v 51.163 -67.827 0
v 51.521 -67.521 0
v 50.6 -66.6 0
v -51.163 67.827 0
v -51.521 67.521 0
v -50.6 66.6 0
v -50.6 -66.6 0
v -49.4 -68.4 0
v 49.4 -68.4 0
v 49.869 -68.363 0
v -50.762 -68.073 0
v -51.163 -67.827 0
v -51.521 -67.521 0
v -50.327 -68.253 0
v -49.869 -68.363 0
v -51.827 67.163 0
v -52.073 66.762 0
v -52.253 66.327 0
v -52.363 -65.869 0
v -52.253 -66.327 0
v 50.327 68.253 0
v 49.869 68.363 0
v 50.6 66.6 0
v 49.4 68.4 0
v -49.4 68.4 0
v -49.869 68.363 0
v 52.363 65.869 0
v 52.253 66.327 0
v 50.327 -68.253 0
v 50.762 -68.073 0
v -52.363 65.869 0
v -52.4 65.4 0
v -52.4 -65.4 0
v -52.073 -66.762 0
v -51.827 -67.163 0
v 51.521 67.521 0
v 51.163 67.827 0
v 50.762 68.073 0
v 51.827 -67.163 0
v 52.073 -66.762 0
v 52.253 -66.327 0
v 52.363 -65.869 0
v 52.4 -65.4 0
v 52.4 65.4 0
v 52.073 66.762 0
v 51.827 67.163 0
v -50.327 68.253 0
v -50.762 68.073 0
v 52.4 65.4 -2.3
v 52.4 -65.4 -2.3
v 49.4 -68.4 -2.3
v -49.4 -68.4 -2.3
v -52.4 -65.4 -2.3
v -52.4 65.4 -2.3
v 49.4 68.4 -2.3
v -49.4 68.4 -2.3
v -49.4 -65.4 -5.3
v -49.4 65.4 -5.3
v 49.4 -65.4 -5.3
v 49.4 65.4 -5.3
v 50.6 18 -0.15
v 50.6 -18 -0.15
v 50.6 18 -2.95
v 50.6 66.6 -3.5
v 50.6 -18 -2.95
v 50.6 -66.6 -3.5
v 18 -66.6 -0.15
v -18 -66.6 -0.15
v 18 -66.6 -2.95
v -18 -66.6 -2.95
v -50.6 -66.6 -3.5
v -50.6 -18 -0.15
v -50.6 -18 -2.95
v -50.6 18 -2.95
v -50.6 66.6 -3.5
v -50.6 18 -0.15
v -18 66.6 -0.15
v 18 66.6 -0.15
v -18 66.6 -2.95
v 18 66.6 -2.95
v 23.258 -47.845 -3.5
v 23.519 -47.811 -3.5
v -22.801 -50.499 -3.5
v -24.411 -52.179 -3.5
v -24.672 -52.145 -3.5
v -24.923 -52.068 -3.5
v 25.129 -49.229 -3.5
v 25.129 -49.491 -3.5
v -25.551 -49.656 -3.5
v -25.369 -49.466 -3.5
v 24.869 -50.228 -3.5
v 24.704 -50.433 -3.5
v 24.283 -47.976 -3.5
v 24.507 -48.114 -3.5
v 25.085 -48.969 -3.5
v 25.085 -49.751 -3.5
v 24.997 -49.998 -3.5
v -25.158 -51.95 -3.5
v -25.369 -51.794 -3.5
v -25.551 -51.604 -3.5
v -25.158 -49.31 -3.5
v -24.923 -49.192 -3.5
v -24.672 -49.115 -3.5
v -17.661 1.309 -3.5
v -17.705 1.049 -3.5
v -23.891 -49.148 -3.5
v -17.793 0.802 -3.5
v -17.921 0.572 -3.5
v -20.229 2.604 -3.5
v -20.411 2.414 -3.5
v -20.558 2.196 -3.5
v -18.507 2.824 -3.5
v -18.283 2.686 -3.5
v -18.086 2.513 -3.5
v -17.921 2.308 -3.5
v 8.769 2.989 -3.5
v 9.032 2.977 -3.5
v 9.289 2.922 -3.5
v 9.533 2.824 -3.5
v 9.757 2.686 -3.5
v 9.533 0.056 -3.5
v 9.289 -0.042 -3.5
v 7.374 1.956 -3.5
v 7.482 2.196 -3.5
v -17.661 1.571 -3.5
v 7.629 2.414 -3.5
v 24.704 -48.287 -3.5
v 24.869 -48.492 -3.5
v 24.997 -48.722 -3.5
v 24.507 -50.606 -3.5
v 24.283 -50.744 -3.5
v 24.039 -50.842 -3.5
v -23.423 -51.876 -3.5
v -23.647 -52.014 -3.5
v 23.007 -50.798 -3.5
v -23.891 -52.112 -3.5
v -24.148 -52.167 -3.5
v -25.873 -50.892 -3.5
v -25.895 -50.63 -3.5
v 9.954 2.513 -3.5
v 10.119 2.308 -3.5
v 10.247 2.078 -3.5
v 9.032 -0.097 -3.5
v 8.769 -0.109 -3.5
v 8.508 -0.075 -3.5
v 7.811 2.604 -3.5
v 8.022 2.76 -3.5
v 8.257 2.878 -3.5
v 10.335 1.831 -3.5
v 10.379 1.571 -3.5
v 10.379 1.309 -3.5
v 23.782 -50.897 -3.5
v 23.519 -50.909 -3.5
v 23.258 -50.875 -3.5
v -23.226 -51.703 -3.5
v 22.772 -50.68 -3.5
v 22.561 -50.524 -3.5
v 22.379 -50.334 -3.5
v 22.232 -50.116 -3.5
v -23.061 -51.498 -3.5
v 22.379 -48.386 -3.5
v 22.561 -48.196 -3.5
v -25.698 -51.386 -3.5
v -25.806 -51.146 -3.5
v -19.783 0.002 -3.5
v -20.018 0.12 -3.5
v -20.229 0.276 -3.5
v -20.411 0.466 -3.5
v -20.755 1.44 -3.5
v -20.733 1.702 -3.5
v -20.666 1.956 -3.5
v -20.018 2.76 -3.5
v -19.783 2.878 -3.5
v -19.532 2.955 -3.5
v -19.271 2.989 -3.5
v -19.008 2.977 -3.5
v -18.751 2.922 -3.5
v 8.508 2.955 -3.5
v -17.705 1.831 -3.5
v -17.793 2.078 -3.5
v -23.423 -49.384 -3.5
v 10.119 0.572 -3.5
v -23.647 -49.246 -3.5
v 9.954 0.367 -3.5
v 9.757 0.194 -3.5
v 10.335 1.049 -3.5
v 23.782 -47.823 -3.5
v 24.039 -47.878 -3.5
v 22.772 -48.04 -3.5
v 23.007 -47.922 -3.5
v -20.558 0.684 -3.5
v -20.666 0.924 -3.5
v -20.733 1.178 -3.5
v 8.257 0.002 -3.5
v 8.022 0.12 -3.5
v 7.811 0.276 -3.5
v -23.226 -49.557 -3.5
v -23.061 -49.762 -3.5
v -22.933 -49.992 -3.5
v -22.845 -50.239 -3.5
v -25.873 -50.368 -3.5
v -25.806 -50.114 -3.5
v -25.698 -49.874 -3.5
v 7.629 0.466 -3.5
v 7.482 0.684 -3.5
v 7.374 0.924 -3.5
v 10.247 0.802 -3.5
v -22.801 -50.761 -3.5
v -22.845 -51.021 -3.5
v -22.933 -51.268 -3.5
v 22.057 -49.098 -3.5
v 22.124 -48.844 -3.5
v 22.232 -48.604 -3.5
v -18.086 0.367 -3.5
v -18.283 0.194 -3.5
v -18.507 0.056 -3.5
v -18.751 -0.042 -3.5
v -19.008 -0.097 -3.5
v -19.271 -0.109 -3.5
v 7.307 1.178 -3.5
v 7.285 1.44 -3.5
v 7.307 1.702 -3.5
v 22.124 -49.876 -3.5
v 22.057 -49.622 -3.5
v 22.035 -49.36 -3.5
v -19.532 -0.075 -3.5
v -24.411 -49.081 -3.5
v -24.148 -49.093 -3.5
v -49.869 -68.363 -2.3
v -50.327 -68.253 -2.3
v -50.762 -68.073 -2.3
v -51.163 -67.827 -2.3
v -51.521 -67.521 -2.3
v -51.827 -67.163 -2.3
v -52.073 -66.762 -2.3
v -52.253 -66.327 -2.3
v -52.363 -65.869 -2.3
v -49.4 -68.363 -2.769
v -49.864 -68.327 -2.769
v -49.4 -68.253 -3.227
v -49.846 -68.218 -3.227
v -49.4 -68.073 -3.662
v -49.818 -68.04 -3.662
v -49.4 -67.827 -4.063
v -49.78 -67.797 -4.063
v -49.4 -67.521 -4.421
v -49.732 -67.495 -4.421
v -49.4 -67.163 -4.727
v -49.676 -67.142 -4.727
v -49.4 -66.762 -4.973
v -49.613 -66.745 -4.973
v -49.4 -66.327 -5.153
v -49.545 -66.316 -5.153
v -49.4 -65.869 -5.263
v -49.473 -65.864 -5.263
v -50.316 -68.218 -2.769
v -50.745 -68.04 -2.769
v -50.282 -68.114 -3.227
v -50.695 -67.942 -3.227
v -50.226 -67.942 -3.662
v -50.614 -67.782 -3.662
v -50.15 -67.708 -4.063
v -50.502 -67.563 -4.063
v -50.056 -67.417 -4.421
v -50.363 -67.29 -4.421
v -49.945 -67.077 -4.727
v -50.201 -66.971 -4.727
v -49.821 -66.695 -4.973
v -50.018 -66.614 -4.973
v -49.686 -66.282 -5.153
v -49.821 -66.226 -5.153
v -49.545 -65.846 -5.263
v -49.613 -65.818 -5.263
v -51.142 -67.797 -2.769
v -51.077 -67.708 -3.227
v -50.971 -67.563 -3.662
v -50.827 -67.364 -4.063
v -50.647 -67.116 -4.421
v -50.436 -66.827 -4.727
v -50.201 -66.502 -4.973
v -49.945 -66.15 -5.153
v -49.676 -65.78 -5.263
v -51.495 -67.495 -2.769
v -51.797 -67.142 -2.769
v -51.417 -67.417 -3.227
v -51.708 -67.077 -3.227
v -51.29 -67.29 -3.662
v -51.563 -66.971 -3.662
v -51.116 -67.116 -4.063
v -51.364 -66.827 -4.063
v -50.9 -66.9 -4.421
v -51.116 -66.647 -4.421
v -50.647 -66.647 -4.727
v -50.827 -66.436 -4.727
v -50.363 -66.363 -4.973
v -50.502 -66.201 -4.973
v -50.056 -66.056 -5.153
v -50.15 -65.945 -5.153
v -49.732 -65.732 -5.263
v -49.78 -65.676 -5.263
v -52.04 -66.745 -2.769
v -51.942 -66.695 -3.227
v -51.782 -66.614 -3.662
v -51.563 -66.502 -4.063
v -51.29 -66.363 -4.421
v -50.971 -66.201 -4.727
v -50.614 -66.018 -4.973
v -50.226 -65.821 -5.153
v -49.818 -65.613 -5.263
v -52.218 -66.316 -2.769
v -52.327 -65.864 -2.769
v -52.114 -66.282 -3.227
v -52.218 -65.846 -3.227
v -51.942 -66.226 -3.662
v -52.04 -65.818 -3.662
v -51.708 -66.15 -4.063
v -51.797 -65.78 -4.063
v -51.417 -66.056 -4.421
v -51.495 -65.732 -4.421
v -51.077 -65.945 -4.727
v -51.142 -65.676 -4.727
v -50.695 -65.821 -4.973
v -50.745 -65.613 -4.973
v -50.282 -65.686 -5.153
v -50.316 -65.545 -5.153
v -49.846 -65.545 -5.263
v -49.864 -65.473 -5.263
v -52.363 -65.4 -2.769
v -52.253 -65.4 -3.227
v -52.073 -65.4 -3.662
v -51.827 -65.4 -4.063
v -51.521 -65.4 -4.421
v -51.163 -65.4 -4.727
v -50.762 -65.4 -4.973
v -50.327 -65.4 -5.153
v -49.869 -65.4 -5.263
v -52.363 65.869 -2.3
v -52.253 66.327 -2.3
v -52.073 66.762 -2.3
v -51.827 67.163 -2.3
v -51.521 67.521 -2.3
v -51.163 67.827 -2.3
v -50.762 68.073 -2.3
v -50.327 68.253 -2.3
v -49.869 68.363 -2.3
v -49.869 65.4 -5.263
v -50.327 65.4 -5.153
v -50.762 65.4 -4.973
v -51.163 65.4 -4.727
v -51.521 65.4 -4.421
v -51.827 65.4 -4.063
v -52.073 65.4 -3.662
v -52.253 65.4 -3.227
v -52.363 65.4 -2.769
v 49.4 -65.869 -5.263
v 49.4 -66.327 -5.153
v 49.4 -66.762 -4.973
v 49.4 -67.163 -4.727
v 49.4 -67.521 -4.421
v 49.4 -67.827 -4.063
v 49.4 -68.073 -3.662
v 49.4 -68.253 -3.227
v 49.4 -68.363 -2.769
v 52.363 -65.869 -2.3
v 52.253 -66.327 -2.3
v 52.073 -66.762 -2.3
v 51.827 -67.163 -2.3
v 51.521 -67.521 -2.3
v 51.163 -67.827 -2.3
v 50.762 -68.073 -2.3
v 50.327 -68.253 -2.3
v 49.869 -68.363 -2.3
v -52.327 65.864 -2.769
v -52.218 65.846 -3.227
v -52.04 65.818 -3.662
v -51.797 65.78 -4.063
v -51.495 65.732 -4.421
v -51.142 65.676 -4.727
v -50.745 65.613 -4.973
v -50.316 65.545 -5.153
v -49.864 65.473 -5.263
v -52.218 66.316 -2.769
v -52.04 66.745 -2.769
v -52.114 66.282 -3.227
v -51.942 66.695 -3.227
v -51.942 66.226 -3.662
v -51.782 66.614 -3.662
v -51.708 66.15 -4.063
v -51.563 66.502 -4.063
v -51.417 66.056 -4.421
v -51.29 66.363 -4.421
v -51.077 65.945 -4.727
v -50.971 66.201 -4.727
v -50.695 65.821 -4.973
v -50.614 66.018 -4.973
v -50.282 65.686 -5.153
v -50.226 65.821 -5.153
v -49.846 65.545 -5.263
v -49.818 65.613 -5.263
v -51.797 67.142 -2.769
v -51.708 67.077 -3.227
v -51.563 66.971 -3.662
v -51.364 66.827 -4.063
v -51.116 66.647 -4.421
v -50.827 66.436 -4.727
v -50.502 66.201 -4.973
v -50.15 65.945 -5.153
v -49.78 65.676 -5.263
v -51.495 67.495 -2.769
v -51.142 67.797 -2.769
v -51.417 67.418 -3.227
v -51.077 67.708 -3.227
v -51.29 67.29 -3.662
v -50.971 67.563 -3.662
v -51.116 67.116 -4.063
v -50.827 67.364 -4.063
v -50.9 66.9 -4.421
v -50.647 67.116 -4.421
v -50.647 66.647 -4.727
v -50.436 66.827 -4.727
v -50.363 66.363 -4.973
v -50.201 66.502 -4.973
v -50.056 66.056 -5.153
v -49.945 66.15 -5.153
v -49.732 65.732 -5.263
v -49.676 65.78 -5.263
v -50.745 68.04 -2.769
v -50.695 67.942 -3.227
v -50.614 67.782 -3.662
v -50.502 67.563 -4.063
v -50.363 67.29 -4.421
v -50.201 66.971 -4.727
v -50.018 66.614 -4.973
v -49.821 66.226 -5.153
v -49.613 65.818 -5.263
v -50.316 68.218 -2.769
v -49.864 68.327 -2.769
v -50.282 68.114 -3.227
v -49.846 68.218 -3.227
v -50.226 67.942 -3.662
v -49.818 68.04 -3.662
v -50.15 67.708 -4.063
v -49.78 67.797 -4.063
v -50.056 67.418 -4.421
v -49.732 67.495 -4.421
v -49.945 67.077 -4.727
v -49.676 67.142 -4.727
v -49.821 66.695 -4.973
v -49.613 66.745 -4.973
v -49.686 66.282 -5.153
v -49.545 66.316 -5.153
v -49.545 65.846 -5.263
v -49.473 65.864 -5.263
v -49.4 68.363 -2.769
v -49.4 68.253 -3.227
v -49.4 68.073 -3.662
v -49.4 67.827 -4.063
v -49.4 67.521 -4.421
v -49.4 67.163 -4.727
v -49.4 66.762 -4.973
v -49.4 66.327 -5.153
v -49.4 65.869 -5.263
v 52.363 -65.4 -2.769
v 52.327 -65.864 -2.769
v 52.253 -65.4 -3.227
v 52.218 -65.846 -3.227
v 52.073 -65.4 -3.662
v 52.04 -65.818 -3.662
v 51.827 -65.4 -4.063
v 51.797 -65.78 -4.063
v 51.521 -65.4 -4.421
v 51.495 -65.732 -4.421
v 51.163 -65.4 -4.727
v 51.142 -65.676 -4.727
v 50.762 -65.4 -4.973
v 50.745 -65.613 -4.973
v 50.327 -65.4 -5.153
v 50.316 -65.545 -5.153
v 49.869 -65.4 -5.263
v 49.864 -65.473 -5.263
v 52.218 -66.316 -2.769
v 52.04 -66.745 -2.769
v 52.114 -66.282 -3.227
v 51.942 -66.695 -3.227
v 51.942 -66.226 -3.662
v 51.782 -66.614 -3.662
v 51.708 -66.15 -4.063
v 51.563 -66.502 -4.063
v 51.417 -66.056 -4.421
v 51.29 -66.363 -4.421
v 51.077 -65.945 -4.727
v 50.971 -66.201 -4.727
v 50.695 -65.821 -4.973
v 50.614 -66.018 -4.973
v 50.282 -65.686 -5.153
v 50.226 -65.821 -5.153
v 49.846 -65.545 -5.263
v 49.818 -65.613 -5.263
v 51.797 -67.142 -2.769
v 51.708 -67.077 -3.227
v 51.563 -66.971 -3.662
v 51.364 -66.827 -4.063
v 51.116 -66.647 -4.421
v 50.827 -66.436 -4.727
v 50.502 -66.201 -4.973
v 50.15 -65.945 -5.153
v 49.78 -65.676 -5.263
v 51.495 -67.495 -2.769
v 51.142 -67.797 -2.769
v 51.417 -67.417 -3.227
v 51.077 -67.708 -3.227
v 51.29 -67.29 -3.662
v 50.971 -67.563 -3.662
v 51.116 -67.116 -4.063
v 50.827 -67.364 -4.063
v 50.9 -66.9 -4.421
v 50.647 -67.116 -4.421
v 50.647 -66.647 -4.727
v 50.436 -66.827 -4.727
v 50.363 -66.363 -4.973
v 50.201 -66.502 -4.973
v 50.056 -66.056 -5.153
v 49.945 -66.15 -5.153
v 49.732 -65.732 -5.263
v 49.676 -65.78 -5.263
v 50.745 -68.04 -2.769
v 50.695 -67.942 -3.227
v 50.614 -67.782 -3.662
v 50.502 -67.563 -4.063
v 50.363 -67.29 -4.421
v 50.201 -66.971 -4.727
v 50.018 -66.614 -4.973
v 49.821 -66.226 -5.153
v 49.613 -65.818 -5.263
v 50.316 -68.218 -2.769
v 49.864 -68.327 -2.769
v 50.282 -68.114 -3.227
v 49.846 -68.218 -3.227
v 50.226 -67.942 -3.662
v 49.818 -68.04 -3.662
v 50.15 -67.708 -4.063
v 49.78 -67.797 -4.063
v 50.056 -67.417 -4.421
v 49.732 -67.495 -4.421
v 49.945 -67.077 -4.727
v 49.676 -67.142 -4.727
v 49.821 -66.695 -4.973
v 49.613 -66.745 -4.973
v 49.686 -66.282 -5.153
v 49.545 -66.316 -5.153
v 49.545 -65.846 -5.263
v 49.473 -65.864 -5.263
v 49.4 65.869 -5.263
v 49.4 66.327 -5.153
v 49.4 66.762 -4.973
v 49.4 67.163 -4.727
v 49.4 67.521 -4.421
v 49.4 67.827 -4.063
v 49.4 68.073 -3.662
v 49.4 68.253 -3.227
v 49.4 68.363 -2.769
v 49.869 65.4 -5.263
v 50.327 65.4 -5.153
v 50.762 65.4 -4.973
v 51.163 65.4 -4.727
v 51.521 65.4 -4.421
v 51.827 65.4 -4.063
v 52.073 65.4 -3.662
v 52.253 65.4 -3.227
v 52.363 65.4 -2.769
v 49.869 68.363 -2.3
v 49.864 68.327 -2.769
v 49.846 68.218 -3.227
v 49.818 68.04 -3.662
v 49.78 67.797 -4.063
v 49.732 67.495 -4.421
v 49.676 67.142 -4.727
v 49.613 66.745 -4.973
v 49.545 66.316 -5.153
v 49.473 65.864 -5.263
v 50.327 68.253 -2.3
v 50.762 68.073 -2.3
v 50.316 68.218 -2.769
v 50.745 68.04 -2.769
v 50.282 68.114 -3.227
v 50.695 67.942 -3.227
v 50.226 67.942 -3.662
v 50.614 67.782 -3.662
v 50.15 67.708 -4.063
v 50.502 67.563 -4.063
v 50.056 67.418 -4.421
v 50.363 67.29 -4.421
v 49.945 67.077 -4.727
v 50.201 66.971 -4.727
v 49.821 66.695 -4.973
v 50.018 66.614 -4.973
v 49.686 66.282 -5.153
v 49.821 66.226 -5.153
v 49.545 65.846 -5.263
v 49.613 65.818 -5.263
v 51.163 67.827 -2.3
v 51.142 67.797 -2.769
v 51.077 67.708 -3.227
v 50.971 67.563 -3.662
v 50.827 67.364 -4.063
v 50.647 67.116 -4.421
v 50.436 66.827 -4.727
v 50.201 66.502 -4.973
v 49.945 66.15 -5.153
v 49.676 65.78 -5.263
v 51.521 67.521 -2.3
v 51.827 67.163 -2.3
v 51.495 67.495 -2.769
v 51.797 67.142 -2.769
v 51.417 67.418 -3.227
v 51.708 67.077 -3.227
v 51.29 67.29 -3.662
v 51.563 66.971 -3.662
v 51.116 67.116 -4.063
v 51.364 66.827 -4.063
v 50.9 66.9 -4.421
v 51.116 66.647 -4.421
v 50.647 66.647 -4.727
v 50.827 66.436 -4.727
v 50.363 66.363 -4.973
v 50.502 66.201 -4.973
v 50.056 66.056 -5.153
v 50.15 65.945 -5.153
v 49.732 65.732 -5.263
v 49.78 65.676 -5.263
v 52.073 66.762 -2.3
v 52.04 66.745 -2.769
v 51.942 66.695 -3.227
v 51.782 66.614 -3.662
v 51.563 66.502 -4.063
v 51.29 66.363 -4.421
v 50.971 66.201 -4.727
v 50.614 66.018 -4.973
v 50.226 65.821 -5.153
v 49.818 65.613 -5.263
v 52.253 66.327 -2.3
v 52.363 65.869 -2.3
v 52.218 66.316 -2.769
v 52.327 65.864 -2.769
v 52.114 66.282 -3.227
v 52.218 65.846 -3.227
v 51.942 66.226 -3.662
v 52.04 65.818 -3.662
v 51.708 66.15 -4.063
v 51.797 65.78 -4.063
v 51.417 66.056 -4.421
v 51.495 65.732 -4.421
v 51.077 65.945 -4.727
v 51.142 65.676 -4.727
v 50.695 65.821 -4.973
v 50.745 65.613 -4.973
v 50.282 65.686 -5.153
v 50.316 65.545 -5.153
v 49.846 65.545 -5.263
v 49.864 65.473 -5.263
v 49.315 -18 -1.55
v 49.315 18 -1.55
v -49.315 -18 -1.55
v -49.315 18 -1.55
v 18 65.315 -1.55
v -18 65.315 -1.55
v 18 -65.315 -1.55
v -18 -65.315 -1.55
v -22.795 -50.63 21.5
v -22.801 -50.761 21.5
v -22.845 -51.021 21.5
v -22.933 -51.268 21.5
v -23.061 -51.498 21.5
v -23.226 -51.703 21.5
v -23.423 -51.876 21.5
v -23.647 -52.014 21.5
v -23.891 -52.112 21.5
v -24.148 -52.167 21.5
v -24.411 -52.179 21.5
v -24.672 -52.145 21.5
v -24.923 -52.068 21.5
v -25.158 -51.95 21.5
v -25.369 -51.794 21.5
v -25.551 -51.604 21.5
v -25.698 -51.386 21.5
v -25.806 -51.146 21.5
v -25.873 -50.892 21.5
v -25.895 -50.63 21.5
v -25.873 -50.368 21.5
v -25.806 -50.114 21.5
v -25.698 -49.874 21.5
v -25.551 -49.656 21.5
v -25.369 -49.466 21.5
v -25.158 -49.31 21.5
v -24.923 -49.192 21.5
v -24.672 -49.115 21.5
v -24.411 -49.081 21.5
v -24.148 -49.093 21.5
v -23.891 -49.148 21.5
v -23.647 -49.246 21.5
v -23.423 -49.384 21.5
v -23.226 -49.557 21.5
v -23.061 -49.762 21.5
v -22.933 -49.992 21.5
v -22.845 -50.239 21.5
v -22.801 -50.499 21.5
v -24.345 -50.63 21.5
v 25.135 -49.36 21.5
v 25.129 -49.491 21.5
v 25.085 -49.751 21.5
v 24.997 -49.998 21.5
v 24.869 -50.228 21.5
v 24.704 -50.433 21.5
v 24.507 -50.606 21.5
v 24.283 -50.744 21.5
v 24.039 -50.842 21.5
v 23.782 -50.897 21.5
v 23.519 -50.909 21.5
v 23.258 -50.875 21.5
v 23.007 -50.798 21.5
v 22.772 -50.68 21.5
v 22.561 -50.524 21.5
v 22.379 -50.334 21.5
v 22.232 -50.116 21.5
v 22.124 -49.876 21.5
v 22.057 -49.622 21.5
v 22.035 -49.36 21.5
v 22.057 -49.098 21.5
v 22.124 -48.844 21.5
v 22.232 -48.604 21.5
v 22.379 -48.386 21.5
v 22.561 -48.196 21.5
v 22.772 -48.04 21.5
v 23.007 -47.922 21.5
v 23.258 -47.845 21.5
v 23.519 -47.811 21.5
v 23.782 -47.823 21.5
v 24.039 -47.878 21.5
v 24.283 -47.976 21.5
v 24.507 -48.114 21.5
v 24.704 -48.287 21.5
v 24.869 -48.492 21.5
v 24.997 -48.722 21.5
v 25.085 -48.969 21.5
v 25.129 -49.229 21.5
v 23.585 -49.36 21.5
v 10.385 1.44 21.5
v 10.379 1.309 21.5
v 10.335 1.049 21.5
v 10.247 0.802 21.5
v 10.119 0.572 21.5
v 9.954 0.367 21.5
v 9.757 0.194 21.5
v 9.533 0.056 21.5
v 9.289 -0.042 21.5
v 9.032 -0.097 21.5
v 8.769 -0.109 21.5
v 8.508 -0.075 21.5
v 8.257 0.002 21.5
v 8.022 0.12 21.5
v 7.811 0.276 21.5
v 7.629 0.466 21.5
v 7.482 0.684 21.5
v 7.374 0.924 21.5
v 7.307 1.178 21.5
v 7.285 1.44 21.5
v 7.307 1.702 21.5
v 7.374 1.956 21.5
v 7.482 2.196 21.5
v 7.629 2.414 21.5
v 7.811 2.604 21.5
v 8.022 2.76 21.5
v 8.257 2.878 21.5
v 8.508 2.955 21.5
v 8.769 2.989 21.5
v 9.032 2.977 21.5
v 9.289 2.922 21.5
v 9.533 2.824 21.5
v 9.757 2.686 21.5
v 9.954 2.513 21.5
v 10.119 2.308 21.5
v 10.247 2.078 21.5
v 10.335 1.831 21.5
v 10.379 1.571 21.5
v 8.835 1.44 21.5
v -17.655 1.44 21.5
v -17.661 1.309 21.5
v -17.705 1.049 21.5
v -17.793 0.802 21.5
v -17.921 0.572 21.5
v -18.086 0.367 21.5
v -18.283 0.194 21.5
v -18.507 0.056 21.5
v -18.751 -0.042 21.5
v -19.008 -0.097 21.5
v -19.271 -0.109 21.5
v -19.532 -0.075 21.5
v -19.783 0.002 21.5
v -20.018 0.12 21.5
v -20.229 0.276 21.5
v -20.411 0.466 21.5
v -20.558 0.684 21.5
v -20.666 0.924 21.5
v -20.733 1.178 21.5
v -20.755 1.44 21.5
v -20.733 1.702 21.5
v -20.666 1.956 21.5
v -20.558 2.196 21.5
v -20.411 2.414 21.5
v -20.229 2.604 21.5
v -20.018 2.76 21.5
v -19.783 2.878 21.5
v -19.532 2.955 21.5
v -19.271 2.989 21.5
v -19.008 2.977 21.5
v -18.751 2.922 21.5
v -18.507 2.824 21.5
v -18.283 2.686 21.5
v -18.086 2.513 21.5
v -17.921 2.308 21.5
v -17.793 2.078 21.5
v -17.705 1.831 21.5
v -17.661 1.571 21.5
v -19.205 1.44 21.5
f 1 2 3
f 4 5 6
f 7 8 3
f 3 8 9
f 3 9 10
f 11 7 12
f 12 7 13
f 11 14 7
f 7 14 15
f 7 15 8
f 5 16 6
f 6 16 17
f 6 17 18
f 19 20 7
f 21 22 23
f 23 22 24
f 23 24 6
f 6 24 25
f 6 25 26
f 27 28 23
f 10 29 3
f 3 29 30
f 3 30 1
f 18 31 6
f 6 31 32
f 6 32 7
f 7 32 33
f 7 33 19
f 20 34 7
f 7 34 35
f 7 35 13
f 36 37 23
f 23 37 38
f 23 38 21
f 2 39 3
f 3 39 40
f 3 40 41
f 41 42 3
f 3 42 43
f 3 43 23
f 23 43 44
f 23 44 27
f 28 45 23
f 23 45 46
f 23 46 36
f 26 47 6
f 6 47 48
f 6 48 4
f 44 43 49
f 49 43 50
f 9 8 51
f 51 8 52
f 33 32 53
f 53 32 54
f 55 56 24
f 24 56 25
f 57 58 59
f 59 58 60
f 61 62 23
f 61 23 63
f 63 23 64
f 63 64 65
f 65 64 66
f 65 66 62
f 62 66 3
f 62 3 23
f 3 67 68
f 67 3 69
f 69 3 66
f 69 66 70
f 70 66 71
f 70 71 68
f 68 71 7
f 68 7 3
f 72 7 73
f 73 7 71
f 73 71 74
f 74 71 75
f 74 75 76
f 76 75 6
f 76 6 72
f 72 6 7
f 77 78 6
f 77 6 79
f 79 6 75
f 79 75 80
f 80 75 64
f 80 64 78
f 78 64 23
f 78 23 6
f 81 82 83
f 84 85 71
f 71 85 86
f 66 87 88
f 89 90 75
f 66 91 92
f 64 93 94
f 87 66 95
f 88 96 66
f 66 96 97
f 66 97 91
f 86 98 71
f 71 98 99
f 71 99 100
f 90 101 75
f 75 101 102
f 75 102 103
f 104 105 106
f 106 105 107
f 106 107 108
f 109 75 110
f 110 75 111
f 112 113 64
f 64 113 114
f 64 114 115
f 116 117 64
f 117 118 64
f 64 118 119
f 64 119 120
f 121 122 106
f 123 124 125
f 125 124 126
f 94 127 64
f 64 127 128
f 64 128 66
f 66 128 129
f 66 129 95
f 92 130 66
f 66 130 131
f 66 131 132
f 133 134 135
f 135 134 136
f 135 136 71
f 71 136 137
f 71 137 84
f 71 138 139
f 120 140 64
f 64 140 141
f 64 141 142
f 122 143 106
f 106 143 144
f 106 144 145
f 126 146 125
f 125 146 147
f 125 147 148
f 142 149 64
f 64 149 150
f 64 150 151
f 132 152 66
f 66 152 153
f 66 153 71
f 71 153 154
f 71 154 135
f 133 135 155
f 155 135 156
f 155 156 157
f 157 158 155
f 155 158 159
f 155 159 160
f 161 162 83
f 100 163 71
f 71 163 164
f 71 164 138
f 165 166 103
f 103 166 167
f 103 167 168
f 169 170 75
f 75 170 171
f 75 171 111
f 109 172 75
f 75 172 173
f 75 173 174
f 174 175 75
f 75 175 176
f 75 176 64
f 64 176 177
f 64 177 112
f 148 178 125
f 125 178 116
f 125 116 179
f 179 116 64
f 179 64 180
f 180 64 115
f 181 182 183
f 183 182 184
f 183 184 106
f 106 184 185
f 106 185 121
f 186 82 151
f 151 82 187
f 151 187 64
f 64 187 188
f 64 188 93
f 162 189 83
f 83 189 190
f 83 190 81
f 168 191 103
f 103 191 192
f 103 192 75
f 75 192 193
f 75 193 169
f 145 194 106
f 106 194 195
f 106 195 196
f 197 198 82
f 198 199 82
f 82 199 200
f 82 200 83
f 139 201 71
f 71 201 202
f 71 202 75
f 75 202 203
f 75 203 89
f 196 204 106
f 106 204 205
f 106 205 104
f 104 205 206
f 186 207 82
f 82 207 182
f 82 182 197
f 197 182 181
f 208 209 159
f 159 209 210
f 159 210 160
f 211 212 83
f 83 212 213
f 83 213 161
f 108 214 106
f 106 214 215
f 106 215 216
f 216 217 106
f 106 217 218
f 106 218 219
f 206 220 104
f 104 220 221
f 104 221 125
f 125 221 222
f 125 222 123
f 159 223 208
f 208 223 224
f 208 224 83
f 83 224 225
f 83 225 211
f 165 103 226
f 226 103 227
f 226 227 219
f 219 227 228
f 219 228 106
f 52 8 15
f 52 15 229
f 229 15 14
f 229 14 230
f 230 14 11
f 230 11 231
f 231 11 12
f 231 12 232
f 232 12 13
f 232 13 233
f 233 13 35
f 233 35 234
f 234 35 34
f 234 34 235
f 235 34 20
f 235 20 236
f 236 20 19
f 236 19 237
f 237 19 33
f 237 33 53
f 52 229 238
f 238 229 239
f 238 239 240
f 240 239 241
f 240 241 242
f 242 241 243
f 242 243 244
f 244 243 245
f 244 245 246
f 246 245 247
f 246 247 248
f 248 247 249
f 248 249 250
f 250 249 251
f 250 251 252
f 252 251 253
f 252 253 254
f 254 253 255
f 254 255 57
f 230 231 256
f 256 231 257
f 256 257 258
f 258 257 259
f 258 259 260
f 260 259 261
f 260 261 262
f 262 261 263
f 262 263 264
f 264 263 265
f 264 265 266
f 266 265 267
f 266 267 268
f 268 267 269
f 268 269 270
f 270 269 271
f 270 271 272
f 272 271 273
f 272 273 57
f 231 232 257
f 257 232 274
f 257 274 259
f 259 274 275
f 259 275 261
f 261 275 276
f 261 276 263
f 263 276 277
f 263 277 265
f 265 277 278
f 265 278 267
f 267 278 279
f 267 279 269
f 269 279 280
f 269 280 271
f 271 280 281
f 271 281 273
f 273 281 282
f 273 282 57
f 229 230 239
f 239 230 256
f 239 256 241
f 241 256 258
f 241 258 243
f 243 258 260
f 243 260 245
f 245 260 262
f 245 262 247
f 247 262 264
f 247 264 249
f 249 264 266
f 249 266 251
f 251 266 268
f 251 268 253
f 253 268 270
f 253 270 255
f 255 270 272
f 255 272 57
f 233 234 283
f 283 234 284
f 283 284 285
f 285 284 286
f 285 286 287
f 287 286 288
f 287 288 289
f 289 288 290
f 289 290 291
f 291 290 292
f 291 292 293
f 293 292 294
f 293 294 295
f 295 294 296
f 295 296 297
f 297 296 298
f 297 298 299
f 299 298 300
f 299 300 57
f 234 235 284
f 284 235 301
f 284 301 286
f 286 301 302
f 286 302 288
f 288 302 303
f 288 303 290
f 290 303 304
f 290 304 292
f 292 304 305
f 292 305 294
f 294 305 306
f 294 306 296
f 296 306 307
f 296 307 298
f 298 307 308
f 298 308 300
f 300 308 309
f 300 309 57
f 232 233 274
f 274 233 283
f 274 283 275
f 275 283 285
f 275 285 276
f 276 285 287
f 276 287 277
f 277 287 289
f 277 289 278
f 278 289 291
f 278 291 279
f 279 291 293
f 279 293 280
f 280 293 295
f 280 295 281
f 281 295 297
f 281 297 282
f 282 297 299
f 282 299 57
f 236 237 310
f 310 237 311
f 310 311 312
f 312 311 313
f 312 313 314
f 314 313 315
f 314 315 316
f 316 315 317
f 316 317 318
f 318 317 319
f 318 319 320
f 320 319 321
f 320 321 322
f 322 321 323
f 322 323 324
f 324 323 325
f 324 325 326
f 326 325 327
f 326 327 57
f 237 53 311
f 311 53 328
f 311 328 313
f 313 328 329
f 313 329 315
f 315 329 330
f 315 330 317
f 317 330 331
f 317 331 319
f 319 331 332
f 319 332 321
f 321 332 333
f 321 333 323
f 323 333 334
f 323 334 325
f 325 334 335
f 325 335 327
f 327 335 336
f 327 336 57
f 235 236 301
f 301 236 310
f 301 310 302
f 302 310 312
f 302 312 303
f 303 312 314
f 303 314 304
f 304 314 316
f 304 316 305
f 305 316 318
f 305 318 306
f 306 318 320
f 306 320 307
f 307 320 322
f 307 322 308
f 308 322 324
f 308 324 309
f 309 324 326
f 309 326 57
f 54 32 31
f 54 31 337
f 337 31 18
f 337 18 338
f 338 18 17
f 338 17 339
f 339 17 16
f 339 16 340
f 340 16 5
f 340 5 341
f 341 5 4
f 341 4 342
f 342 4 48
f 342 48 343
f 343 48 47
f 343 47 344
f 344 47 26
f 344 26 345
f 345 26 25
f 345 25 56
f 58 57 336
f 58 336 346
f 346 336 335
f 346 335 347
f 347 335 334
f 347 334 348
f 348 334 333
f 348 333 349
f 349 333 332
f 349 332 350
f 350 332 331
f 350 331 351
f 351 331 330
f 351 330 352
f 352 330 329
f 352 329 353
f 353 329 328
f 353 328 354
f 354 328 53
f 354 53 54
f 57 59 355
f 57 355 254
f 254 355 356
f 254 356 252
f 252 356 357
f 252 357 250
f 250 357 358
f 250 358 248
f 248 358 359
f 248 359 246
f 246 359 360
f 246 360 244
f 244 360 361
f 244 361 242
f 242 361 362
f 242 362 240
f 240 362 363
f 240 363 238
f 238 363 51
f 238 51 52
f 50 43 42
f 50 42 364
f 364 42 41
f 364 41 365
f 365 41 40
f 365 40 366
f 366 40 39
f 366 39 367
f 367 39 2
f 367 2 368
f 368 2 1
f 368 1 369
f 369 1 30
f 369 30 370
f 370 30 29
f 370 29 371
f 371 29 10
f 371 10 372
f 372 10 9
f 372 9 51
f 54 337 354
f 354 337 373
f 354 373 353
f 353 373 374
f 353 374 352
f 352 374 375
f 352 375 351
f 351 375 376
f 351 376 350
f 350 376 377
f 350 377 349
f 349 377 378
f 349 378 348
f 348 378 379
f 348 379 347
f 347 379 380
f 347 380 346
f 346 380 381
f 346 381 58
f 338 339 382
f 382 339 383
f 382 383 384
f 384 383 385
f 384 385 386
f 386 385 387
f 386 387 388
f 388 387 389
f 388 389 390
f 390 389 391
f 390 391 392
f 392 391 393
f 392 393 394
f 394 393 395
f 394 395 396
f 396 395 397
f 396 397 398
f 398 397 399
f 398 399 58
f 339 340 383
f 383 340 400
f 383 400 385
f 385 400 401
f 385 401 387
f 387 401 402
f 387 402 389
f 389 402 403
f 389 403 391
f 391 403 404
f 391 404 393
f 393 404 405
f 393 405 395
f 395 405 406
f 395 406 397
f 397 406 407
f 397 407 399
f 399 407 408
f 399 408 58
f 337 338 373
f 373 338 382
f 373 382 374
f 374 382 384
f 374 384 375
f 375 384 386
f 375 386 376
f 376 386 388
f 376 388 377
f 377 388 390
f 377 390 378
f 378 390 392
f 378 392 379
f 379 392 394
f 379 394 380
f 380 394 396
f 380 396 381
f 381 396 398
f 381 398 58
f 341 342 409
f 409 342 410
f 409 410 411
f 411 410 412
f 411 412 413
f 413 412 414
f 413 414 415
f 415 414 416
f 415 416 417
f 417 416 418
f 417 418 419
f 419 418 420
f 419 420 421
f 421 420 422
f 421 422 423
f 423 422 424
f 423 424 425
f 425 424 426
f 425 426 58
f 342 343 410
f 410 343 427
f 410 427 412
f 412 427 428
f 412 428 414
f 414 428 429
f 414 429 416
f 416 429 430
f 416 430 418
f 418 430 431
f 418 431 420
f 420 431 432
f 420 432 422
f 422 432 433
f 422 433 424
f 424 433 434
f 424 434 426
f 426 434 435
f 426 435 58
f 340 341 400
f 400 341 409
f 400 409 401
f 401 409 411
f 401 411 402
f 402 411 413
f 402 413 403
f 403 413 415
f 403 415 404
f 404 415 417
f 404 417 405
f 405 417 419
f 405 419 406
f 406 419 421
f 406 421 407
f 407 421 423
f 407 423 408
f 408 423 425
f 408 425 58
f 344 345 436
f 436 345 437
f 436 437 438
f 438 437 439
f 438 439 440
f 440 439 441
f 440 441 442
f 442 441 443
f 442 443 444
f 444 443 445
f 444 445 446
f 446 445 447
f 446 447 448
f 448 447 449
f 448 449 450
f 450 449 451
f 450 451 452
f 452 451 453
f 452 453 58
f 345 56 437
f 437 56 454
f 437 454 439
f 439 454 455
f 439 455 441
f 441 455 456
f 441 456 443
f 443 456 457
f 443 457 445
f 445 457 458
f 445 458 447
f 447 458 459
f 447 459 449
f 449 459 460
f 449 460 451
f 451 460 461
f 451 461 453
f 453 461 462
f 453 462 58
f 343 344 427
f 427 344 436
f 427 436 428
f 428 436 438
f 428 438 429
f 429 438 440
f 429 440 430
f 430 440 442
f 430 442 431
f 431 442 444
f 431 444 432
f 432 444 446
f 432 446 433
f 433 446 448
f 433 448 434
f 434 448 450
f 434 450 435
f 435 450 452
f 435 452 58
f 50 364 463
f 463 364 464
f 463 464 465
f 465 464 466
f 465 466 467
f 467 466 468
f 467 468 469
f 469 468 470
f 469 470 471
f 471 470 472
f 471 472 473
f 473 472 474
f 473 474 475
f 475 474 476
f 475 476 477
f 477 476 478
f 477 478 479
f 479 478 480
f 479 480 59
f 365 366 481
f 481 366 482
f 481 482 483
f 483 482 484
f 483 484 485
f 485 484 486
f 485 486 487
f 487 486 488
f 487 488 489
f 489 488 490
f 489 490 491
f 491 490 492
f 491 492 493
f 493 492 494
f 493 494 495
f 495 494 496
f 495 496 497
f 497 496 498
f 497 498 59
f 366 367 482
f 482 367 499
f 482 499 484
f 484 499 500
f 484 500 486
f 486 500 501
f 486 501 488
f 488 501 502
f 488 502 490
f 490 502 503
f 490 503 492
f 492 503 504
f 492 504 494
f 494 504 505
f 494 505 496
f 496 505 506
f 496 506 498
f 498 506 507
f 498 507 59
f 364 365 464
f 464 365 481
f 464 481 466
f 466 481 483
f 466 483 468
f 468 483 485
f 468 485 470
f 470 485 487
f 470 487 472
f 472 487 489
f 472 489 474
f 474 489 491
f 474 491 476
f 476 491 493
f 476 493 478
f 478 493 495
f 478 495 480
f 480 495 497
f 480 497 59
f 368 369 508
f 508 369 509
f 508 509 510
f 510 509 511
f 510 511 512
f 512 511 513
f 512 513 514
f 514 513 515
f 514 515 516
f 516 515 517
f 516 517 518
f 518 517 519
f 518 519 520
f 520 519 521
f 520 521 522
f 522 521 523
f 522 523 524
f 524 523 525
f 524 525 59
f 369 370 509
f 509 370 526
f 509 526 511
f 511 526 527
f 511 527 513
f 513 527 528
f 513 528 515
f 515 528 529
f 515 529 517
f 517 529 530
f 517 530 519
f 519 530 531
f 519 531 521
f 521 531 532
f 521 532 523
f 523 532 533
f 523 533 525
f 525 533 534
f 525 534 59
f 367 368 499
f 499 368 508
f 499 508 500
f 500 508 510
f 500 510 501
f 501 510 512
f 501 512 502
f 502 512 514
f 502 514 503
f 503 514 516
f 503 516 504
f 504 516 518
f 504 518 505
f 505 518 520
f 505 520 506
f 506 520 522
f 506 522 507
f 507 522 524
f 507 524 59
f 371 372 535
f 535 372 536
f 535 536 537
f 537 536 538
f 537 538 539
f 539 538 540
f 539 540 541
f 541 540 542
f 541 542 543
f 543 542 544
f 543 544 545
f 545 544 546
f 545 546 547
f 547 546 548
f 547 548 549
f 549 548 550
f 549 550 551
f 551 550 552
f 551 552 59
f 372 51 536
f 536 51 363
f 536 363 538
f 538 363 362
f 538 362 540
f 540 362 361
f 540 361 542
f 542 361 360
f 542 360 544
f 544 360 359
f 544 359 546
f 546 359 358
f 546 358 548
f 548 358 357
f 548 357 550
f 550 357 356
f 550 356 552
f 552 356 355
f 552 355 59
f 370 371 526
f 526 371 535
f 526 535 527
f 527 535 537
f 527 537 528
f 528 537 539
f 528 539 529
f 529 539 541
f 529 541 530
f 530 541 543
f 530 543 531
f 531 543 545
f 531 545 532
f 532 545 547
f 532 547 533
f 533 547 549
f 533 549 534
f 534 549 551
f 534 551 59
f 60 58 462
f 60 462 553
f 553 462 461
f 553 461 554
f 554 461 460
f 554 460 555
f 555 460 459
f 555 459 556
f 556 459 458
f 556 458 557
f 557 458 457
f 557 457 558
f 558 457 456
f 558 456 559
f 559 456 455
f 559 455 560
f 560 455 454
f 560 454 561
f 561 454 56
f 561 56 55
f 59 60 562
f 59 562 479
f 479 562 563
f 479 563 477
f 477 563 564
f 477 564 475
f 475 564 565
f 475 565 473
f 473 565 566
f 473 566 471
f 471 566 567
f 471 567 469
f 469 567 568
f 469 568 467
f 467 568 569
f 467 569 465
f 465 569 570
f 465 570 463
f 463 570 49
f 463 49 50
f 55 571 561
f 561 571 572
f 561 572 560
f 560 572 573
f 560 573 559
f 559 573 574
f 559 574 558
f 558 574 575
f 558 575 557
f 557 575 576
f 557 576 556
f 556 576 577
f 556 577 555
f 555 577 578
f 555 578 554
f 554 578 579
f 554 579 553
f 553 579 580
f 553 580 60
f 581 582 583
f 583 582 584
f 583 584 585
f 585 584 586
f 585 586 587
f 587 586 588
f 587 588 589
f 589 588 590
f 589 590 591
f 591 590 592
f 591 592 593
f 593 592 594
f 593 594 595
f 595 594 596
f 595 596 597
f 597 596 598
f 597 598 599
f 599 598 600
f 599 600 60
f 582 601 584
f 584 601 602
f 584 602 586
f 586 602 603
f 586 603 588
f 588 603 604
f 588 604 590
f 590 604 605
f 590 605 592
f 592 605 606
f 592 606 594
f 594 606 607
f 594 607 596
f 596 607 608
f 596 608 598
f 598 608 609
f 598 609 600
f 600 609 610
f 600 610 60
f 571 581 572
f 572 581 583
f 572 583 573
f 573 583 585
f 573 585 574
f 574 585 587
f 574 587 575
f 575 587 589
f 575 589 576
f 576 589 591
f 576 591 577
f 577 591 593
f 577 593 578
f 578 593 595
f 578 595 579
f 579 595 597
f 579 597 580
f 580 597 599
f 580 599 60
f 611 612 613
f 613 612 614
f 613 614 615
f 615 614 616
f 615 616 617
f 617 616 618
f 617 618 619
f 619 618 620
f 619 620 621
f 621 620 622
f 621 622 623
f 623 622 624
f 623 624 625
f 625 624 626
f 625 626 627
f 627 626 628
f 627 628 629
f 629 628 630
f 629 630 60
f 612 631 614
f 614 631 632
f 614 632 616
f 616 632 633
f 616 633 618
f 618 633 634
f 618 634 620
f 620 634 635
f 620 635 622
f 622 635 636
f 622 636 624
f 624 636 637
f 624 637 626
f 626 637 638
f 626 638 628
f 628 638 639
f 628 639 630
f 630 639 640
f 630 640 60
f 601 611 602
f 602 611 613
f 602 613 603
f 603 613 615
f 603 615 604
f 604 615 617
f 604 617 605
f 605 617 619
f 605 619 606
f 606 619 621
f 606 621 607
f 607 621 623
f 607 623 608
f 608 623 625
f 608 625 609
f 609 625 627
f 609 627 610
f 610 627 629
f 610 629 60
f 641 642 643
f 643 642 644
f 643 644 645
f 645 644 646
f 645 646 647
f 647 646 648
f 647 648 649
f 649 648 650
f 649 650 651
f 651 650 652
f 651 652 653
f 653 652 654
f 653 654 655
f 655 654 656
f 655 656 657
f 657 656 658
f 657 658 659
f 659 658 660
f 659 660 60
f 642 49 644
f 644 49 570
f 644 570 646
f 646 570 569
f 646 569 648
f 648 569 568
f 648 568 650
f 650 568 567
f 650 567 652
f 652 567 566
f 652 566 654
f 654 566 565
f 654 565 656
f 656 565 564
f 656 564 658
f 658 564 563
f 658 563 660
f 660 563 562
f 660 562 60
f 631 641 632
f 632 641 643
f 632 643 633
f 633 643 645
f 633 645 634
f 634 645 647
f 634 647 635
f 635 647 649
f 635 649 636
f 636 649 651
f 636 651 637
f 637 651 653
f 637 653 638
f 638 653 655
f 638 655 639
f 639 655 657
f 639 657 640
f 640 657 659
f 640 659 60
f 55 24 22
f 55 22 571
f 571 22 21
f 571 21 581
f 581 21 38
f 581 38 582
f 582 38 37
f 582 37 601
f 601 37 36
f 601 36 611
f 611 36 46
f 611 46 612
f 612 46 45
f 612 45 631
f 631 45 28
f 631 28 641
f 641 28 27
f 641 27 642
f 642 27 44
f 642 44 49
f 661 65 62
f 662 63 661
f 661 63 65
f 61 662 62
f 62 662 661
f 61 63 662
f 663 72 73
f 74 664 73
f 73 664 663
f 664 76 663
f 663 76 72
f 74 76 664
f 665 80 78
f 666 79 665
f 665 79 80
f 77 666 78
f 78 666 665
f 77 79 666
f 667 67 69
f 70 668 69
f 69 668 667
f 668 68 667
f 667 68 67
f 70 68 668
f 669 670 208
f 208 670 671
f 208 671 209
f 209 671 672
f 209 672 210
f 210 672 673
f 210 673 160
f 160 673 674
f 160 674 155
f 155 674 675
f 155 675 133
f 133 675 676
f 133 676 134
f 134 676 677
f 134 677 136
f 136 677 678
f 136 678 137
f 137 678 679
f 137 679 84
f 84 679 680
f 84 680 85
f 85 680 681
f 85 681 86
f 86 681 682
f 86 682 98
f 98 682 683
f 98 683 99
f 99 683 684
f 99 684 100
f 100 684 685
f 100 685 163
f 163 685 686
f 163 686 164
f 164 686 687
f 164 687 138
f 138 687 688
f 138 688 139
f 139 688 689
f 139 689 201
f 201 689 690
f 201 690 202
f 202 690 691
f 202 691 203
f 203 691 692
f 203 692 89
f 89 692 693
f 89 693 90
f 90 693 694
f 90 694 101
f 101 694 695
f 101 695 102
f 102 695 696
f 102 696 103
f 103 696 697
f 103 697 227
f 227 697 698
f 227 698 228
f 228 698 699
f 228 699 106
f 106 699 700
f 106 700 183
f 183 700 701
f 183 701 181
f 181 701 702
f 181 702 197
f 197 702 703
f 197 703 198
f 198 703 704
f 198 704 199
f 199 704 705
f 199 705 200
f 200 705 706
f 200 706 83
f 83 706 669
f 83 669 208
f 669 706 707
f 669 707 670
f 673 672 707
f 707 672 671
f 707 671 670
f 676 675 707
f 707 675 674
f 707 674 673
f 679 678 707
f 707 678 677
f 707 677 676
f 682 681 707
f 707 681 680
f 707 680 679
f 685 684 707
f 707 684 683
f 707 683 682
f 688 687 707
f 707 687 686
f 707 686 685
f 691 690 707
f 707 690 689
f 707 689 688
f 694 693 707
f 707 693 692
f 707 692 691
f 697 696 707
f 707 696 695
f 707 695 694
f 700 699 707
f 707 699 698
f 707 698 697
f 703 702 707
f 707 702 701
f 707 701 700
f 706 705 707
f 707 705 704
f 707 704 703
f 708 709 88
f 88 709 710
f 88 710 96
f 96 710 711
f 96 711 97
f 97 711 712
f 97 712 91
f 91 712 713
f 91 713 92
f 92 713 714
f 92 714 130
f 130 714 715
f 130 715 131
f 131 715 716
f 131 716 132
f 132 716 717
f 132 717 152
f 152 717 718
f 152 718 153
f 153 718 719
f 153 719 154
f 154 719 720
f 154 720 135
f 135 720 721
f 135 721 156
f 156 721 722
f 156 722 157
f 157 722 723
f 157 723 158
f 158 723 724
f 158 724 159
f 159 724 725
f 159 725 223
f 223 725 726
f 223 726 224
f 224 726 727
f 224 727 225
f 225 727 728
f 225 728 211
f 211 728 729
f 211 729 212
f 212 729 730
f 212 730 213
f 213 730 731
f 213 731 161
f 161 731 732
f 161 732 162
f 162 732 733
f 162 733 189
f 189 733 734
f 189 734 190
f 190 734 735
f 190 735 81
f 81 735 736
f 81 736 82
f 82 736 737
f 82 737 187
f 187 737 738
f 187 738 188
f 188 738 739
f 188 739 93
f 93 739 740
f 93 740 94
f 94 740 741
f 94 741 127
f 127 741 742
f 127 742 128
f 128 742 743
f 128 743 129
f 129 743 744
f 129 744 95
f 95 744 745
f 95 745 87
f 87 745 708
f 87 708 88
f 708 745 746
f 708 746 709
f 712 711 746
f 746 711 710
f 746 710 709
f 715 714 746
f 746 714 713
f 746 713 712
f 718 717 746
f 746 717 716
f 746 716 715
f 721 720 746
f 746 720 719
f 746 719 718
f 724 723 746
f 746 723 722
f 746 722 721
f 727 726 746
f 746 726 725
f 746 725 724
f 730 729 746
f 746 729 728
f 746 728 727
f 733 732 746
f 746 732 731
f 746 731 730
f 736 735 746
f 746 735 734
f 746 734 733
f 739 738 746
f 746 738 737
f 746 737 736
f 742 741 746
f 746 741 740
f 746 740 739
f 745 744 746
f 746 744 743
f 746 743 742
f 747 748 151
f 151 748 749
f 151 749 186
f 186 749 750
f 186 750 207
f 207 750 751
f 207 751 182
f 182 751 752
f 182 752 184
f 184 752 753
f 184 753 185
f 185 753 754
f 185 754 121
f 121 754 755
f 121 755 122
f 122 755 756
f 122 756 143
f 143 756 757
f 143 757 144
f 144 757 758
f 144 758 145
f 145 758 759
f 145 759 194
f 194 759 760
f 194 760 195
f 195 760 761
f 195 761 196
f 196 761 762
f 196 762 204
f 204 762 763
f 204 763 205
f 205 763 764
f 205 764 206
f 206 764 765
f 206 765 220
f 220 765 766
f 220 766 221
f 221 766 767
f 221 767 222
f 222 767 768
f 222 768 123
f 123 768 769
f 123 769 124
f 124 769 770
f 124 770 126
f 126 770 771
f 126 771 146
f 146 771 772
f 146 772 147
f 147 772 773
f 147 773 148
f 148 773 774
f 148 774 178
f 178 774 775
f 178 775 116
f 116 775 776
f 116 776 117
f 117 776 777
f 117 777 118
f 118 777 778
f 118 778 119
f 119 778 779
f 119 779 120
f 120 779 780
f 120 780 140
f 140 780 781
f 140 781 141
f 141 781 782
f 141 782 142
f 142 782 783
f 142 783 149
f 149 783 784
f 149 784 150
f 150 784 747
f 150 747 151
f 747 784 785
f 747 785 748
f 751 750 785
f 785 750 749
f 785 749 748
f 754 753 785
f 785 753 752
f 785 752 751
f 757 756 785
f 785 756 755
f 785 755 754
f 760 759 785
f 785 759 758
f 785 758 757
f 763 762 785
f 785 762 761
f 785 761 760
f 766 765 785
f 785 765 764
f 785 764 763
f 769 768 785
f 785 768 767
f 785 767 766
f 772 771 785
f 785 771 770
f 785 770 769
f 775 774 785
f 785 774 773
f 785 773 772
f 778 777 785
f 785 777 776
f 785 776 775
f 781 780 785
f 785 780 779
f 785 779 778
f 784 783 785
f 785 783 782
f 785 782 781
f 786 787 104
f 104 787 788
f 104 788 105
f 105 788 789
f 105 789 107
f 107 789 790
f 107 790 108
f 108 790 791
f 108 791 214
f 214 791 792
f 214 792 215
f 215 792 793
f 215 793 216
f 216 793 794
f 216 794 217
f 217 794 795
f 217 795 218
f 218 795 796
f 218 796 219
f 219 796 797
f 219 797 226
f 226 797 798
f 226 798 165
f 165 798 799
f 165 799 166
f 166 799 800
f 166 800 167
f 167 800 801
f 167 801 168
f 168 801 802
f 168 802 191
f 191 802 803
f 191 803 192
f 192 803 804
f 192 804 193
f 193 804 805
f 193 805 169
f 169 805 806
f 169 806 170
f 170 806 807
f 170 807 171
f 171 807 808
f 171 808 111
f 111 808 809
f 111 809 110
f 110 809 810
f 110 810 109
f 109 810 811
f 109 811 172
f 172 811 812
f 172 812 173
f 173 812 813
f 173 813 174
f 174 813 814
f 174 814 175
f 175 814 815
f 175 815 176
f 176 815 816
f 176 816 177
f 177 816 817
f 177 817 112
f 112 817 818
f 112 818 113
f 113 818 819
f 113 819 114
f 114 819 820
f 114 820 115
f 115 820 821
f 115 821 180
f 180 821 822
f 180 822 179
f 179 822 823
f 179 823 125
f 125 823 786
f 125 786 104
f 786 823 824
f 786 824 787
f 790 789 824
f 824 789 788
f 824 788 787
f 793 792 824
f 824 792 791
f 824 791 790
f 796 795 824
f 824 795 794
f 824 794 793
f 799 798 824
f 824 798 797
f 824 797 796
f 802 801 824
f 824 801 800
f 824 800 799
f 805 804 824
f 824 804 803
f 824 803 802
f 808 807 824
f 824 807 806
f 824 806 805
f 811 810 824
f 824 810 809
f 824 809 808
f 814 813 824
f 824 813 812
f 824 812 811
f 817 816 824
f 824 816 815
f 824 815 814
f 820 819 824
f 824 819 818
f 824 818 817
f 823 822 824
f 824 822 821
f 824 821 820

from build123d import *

# Parameters (mm, degrees)
ESQUISSE1_W        = 101.2
ESQUISSE1_H        = 133.2
BOSS_EXTRU_1_DEPTH = 3.5
COQUE1_T           = 1.8
CONG_4_R           = 3
BOSS_EXTRU_2_DEPTH = 18
BOSS_EXTRU_3_DEPTH = 18
ESQUISSE5_R        = 1.55
BOSS_EXTRU_4_DEPTH = 25


with BuildPart() as part:
    # Esquisse1 → Boss.-Extru.1 (new body)
    with BuildSketch(Plane.XY):
        Rectangle(ESQUISSE1_W, ESQUISSE1_H)
    extrude(amount=-BOSS_EXTRU_1_DEPTH)

    # Coque1
    coque1_openings = [part.faces().sort_by_distance(p)[0] for p in [
        (0, 0, 0),
    ]]
    offset(amount=COQUE1_T, openings=coque1_openings, kind=Kind.INTERSECTION)

    # Congé4
    # the kernel refuses this fillet: 3 mm, written as the material it takes off along each edge
    with BuildSketch(Plane(origin=(-49.4, -65.4, -2.3), x_dir=(0, 0, -1), z_dir=(-1, 0, 0))) as cong_4_piece_1_section:
        Polygon((0, 0), (CONG_4_R, 0), (CONG_4_R, CONG_4_R), (0, CONG_4_R), align=None)
    cong_4_piece_1 = extrude(amount=CONG_4_R, mode=Mode.PRIVATE)
    cong_4_piece_1 = cong_4_piece_1 - Plane(origin=(-49.4, -65.4, -2.3), x_dir=(0, 0.7071067811865475, 0.7071067811865475), z_dir=(-1, 0, 0)) * Sphere(CONG_4_R, mode=Mode.PRIVATE)
    add(cong_4_piece_1, mode=Mode.SUBTRACT)
    with BuildSketch(Plane(origin=(-49.4, 65.4, -2.3), x_dir=(-1, 0, 0), z_dir=(0, 1, 0))) as cong_4_piece_2_section:
        Polygon((0, 0), (CONG_4_R, 0), (CONG_4_R, -CONG_4_R), (0, -CONG_4_R), align=None)
    cong_4_piece_2 = extrude(amount=CONG_4_R, mode=Mode.PRIVATE)
    cong_4_piece_2 = cong_4_piece_2 - Plane(origin=(-49.4, 65.4, -2.3), x_dir=(0.7071067811865475, 0, 0.7071067811865475), z_dir=(0, 1, 0)) * Sphere(CONG_4_R, mode=Mode.PRIVATE)
    add(cong_4_piece_2, mode=Mode.SUBTRACT)
    with BuildSketch(Plane(origin=(49.4, -65.4, -2.3), x_dir=(0, -1, 0), z_dir=(0, 0, -1))) as cong_4_piece_3_section:
        Polygon((0, 0), (CONG_4_R, 0), (CONG_4_R, -CONG_4_R), (0, -CONG_4_R), align=None)
    cong_4_piece_3 = extrude(amount=CONG_4_R, mode=Mode.PRIVATE)
    cong_4_piece_3 = cong_4_piece_3 - Plane(origin=(49.4, -65.4, -2.3), x_dir=(-0.7071067811865475, 0.7071067811865475, 0), z_dir=(0, 0, -1)) * Sphere(CONG_4_R, mode=Mode.PRIVATE)
    add(cong_4_piece_3, mode=Mode.SUBTRACT)
    with BuildSketch(Plane(origin=(49.4, 65.4, -2.3), x_dir=(0, 0, -1), z_dir=(0, 1, 0))) as cong_4_piece_4_section:
        Polygon((0, 0), (CONG_4_R, 0), (CONG_4_R, -CONG_4_R), (0, -CONG_4_R), align=None)
    cong_4_piece_4 = extrude(amount=CONG_4_R, mode=Mode.PRIVATE)
    cong_4_piece_4 = cong_4_piece_4 - Plane(origin=(49.4, 65.4, -2.3), x_dir=(-0.7071067811865475, 0, 0.7071067811865475), z_dir=(0, 1, 0)) * Sphere(CONG_4_R, mode=Mode.PRIVATE)
    add(cong_4_piece_4, mode=Mode.SUBTRACT)
    with BuildSketch(Plane(origin=(-52.4, -65.4, -5.3), x_dir=(0, 0, 1), z_dir=(0, 1, 0)), Plane(origin=(52.4, 65.4, -5.3), x_dir=(0, 0, 1), z_dir=(0, -1, 0))) as cong_4_piece_5:
        with BuildLine():
            CenterArc((CONG_4_R, CONG_4_R), CONG_4_R, 180, 90)
            Line((0, CONG_4_R), (0, 0))
            Line((0, 0), (CONG_4_R, 0))
        make_face()
    extrude(amount=130.8, mode=Mode.SUBTRACT)
    with BuildSketch(Plane(origin=(49.4, -68.4, -5.3), x_dir=(0, 0, 1), z_dir=(-1, 0, 0)), Plane(origin=(-49.4, 68.4, -5.3), x_dir=(0, 0, 1), z_dir=(1, 0, 0))) as cong_4_piece_6:
        with BuildLine():
            CenterArc((CONG_4_R, CONG_4_R), CONG_4_R, 180, 90)
            Line((0, CONG_4_R), (0, 0))
            Line((0, 0), (CONG_4_R, 0))
        make_face()
    extrude(amount=98.8, mode=Mode.SUBTRACT)
    with BuildSketch(Plane(origin=(52.4, -68.4, -2.3), x_dir=(-1, 0, 0), z_dir=(0, 0, 1)), Plane(origin=(-52.4, -68.4, 7.5), x_dir=(1, 0, 0), z_dir=(0, 0, -1)), Plane(origin=(-52.4, 68.4, -2.3), x_dir=(1, 0, 0), z_dir=(0, 0, 1)), Plane(origin=(52.4, 68.4, -2.3), x_dir=(0, -1, 0), z_dir=(0, 0, 1))) as cong_4_piece_7:
        with BuildLine():
            CenterArc((CONG_4_R, -CONG_4_R), CONG_4_R, 90, 90)
            Line((0, -CONG_4_R), (0, 0))
            Line((0, 0), (CONG_4_R, 0))
        make_face()
    extrude(amount=9.8, mode=Mode.SUBTRACT)

    # Esquisse3D1 → Boss.-Extru.2 (add, symmetric)
    with BuildSketch(Plane(origin=(50.6, 0, -0.15), x_dir=(0, 0, -1), z_dir=(0, 1, 0))):
        Polygon((0, 0), (2.8, 0), (1.4, 1.284523258), align=None)
    boss_extru_2 = extrude(amount=BOSS_EXTRU_2_DEPTH, both=True)

    # Symétrie1: Boss.-Extru.2 across plane
    add(boss_extru_2.mirror(Plane(origin=(0, 0, 0), x_dir=(0, 0, 1), z_dir=(1, 0, 0))))

    # Esquisse3D2 → Boss.-Extru.3 (add, symmetric)
    with BuildSketch(Plane(origin=(0, 66.6, -0.15), x_dir=(0, 0, -1), z_dir=(-1, 0, 0))):
        Polygon((0, 0), (2.8, 0), (1.4, 1.284523258), align=None)
    boss_extru_3 = extrude(amount=BOSS_EXTRU_3_DEPTH, both=True)

    # Symétrie2: Boss.-Extru.3 across plane
    add(boss_extru_3.mirror(Plane.ZX))

    # Esquisse5 → Boss.-Extru.4 (add)
    with BuildSketch(Plane.XY.offset(-3.5)):
        with Locations(Location((-24.345, -50.63, 0), (0, 0, 180))):
            Circle(ESQUISSE5_R)
        with Locations(Location((23.585, -49.36, 0), (0, 0, 180))):
            Circle(ESQUISSE5_R)
        with Locations(Location((8.835, 1.44, 0), (0, 0, 180))):
            Circle(ESQUISSE5_R)
        with Locations(Location((-19.205, 1.44, 0), (0, 0, 180))):
            Circle(ESQUISSE5_R)
    extrude(amount=BOSS_EXTRU_4_DEPTH)


solid = part.part
